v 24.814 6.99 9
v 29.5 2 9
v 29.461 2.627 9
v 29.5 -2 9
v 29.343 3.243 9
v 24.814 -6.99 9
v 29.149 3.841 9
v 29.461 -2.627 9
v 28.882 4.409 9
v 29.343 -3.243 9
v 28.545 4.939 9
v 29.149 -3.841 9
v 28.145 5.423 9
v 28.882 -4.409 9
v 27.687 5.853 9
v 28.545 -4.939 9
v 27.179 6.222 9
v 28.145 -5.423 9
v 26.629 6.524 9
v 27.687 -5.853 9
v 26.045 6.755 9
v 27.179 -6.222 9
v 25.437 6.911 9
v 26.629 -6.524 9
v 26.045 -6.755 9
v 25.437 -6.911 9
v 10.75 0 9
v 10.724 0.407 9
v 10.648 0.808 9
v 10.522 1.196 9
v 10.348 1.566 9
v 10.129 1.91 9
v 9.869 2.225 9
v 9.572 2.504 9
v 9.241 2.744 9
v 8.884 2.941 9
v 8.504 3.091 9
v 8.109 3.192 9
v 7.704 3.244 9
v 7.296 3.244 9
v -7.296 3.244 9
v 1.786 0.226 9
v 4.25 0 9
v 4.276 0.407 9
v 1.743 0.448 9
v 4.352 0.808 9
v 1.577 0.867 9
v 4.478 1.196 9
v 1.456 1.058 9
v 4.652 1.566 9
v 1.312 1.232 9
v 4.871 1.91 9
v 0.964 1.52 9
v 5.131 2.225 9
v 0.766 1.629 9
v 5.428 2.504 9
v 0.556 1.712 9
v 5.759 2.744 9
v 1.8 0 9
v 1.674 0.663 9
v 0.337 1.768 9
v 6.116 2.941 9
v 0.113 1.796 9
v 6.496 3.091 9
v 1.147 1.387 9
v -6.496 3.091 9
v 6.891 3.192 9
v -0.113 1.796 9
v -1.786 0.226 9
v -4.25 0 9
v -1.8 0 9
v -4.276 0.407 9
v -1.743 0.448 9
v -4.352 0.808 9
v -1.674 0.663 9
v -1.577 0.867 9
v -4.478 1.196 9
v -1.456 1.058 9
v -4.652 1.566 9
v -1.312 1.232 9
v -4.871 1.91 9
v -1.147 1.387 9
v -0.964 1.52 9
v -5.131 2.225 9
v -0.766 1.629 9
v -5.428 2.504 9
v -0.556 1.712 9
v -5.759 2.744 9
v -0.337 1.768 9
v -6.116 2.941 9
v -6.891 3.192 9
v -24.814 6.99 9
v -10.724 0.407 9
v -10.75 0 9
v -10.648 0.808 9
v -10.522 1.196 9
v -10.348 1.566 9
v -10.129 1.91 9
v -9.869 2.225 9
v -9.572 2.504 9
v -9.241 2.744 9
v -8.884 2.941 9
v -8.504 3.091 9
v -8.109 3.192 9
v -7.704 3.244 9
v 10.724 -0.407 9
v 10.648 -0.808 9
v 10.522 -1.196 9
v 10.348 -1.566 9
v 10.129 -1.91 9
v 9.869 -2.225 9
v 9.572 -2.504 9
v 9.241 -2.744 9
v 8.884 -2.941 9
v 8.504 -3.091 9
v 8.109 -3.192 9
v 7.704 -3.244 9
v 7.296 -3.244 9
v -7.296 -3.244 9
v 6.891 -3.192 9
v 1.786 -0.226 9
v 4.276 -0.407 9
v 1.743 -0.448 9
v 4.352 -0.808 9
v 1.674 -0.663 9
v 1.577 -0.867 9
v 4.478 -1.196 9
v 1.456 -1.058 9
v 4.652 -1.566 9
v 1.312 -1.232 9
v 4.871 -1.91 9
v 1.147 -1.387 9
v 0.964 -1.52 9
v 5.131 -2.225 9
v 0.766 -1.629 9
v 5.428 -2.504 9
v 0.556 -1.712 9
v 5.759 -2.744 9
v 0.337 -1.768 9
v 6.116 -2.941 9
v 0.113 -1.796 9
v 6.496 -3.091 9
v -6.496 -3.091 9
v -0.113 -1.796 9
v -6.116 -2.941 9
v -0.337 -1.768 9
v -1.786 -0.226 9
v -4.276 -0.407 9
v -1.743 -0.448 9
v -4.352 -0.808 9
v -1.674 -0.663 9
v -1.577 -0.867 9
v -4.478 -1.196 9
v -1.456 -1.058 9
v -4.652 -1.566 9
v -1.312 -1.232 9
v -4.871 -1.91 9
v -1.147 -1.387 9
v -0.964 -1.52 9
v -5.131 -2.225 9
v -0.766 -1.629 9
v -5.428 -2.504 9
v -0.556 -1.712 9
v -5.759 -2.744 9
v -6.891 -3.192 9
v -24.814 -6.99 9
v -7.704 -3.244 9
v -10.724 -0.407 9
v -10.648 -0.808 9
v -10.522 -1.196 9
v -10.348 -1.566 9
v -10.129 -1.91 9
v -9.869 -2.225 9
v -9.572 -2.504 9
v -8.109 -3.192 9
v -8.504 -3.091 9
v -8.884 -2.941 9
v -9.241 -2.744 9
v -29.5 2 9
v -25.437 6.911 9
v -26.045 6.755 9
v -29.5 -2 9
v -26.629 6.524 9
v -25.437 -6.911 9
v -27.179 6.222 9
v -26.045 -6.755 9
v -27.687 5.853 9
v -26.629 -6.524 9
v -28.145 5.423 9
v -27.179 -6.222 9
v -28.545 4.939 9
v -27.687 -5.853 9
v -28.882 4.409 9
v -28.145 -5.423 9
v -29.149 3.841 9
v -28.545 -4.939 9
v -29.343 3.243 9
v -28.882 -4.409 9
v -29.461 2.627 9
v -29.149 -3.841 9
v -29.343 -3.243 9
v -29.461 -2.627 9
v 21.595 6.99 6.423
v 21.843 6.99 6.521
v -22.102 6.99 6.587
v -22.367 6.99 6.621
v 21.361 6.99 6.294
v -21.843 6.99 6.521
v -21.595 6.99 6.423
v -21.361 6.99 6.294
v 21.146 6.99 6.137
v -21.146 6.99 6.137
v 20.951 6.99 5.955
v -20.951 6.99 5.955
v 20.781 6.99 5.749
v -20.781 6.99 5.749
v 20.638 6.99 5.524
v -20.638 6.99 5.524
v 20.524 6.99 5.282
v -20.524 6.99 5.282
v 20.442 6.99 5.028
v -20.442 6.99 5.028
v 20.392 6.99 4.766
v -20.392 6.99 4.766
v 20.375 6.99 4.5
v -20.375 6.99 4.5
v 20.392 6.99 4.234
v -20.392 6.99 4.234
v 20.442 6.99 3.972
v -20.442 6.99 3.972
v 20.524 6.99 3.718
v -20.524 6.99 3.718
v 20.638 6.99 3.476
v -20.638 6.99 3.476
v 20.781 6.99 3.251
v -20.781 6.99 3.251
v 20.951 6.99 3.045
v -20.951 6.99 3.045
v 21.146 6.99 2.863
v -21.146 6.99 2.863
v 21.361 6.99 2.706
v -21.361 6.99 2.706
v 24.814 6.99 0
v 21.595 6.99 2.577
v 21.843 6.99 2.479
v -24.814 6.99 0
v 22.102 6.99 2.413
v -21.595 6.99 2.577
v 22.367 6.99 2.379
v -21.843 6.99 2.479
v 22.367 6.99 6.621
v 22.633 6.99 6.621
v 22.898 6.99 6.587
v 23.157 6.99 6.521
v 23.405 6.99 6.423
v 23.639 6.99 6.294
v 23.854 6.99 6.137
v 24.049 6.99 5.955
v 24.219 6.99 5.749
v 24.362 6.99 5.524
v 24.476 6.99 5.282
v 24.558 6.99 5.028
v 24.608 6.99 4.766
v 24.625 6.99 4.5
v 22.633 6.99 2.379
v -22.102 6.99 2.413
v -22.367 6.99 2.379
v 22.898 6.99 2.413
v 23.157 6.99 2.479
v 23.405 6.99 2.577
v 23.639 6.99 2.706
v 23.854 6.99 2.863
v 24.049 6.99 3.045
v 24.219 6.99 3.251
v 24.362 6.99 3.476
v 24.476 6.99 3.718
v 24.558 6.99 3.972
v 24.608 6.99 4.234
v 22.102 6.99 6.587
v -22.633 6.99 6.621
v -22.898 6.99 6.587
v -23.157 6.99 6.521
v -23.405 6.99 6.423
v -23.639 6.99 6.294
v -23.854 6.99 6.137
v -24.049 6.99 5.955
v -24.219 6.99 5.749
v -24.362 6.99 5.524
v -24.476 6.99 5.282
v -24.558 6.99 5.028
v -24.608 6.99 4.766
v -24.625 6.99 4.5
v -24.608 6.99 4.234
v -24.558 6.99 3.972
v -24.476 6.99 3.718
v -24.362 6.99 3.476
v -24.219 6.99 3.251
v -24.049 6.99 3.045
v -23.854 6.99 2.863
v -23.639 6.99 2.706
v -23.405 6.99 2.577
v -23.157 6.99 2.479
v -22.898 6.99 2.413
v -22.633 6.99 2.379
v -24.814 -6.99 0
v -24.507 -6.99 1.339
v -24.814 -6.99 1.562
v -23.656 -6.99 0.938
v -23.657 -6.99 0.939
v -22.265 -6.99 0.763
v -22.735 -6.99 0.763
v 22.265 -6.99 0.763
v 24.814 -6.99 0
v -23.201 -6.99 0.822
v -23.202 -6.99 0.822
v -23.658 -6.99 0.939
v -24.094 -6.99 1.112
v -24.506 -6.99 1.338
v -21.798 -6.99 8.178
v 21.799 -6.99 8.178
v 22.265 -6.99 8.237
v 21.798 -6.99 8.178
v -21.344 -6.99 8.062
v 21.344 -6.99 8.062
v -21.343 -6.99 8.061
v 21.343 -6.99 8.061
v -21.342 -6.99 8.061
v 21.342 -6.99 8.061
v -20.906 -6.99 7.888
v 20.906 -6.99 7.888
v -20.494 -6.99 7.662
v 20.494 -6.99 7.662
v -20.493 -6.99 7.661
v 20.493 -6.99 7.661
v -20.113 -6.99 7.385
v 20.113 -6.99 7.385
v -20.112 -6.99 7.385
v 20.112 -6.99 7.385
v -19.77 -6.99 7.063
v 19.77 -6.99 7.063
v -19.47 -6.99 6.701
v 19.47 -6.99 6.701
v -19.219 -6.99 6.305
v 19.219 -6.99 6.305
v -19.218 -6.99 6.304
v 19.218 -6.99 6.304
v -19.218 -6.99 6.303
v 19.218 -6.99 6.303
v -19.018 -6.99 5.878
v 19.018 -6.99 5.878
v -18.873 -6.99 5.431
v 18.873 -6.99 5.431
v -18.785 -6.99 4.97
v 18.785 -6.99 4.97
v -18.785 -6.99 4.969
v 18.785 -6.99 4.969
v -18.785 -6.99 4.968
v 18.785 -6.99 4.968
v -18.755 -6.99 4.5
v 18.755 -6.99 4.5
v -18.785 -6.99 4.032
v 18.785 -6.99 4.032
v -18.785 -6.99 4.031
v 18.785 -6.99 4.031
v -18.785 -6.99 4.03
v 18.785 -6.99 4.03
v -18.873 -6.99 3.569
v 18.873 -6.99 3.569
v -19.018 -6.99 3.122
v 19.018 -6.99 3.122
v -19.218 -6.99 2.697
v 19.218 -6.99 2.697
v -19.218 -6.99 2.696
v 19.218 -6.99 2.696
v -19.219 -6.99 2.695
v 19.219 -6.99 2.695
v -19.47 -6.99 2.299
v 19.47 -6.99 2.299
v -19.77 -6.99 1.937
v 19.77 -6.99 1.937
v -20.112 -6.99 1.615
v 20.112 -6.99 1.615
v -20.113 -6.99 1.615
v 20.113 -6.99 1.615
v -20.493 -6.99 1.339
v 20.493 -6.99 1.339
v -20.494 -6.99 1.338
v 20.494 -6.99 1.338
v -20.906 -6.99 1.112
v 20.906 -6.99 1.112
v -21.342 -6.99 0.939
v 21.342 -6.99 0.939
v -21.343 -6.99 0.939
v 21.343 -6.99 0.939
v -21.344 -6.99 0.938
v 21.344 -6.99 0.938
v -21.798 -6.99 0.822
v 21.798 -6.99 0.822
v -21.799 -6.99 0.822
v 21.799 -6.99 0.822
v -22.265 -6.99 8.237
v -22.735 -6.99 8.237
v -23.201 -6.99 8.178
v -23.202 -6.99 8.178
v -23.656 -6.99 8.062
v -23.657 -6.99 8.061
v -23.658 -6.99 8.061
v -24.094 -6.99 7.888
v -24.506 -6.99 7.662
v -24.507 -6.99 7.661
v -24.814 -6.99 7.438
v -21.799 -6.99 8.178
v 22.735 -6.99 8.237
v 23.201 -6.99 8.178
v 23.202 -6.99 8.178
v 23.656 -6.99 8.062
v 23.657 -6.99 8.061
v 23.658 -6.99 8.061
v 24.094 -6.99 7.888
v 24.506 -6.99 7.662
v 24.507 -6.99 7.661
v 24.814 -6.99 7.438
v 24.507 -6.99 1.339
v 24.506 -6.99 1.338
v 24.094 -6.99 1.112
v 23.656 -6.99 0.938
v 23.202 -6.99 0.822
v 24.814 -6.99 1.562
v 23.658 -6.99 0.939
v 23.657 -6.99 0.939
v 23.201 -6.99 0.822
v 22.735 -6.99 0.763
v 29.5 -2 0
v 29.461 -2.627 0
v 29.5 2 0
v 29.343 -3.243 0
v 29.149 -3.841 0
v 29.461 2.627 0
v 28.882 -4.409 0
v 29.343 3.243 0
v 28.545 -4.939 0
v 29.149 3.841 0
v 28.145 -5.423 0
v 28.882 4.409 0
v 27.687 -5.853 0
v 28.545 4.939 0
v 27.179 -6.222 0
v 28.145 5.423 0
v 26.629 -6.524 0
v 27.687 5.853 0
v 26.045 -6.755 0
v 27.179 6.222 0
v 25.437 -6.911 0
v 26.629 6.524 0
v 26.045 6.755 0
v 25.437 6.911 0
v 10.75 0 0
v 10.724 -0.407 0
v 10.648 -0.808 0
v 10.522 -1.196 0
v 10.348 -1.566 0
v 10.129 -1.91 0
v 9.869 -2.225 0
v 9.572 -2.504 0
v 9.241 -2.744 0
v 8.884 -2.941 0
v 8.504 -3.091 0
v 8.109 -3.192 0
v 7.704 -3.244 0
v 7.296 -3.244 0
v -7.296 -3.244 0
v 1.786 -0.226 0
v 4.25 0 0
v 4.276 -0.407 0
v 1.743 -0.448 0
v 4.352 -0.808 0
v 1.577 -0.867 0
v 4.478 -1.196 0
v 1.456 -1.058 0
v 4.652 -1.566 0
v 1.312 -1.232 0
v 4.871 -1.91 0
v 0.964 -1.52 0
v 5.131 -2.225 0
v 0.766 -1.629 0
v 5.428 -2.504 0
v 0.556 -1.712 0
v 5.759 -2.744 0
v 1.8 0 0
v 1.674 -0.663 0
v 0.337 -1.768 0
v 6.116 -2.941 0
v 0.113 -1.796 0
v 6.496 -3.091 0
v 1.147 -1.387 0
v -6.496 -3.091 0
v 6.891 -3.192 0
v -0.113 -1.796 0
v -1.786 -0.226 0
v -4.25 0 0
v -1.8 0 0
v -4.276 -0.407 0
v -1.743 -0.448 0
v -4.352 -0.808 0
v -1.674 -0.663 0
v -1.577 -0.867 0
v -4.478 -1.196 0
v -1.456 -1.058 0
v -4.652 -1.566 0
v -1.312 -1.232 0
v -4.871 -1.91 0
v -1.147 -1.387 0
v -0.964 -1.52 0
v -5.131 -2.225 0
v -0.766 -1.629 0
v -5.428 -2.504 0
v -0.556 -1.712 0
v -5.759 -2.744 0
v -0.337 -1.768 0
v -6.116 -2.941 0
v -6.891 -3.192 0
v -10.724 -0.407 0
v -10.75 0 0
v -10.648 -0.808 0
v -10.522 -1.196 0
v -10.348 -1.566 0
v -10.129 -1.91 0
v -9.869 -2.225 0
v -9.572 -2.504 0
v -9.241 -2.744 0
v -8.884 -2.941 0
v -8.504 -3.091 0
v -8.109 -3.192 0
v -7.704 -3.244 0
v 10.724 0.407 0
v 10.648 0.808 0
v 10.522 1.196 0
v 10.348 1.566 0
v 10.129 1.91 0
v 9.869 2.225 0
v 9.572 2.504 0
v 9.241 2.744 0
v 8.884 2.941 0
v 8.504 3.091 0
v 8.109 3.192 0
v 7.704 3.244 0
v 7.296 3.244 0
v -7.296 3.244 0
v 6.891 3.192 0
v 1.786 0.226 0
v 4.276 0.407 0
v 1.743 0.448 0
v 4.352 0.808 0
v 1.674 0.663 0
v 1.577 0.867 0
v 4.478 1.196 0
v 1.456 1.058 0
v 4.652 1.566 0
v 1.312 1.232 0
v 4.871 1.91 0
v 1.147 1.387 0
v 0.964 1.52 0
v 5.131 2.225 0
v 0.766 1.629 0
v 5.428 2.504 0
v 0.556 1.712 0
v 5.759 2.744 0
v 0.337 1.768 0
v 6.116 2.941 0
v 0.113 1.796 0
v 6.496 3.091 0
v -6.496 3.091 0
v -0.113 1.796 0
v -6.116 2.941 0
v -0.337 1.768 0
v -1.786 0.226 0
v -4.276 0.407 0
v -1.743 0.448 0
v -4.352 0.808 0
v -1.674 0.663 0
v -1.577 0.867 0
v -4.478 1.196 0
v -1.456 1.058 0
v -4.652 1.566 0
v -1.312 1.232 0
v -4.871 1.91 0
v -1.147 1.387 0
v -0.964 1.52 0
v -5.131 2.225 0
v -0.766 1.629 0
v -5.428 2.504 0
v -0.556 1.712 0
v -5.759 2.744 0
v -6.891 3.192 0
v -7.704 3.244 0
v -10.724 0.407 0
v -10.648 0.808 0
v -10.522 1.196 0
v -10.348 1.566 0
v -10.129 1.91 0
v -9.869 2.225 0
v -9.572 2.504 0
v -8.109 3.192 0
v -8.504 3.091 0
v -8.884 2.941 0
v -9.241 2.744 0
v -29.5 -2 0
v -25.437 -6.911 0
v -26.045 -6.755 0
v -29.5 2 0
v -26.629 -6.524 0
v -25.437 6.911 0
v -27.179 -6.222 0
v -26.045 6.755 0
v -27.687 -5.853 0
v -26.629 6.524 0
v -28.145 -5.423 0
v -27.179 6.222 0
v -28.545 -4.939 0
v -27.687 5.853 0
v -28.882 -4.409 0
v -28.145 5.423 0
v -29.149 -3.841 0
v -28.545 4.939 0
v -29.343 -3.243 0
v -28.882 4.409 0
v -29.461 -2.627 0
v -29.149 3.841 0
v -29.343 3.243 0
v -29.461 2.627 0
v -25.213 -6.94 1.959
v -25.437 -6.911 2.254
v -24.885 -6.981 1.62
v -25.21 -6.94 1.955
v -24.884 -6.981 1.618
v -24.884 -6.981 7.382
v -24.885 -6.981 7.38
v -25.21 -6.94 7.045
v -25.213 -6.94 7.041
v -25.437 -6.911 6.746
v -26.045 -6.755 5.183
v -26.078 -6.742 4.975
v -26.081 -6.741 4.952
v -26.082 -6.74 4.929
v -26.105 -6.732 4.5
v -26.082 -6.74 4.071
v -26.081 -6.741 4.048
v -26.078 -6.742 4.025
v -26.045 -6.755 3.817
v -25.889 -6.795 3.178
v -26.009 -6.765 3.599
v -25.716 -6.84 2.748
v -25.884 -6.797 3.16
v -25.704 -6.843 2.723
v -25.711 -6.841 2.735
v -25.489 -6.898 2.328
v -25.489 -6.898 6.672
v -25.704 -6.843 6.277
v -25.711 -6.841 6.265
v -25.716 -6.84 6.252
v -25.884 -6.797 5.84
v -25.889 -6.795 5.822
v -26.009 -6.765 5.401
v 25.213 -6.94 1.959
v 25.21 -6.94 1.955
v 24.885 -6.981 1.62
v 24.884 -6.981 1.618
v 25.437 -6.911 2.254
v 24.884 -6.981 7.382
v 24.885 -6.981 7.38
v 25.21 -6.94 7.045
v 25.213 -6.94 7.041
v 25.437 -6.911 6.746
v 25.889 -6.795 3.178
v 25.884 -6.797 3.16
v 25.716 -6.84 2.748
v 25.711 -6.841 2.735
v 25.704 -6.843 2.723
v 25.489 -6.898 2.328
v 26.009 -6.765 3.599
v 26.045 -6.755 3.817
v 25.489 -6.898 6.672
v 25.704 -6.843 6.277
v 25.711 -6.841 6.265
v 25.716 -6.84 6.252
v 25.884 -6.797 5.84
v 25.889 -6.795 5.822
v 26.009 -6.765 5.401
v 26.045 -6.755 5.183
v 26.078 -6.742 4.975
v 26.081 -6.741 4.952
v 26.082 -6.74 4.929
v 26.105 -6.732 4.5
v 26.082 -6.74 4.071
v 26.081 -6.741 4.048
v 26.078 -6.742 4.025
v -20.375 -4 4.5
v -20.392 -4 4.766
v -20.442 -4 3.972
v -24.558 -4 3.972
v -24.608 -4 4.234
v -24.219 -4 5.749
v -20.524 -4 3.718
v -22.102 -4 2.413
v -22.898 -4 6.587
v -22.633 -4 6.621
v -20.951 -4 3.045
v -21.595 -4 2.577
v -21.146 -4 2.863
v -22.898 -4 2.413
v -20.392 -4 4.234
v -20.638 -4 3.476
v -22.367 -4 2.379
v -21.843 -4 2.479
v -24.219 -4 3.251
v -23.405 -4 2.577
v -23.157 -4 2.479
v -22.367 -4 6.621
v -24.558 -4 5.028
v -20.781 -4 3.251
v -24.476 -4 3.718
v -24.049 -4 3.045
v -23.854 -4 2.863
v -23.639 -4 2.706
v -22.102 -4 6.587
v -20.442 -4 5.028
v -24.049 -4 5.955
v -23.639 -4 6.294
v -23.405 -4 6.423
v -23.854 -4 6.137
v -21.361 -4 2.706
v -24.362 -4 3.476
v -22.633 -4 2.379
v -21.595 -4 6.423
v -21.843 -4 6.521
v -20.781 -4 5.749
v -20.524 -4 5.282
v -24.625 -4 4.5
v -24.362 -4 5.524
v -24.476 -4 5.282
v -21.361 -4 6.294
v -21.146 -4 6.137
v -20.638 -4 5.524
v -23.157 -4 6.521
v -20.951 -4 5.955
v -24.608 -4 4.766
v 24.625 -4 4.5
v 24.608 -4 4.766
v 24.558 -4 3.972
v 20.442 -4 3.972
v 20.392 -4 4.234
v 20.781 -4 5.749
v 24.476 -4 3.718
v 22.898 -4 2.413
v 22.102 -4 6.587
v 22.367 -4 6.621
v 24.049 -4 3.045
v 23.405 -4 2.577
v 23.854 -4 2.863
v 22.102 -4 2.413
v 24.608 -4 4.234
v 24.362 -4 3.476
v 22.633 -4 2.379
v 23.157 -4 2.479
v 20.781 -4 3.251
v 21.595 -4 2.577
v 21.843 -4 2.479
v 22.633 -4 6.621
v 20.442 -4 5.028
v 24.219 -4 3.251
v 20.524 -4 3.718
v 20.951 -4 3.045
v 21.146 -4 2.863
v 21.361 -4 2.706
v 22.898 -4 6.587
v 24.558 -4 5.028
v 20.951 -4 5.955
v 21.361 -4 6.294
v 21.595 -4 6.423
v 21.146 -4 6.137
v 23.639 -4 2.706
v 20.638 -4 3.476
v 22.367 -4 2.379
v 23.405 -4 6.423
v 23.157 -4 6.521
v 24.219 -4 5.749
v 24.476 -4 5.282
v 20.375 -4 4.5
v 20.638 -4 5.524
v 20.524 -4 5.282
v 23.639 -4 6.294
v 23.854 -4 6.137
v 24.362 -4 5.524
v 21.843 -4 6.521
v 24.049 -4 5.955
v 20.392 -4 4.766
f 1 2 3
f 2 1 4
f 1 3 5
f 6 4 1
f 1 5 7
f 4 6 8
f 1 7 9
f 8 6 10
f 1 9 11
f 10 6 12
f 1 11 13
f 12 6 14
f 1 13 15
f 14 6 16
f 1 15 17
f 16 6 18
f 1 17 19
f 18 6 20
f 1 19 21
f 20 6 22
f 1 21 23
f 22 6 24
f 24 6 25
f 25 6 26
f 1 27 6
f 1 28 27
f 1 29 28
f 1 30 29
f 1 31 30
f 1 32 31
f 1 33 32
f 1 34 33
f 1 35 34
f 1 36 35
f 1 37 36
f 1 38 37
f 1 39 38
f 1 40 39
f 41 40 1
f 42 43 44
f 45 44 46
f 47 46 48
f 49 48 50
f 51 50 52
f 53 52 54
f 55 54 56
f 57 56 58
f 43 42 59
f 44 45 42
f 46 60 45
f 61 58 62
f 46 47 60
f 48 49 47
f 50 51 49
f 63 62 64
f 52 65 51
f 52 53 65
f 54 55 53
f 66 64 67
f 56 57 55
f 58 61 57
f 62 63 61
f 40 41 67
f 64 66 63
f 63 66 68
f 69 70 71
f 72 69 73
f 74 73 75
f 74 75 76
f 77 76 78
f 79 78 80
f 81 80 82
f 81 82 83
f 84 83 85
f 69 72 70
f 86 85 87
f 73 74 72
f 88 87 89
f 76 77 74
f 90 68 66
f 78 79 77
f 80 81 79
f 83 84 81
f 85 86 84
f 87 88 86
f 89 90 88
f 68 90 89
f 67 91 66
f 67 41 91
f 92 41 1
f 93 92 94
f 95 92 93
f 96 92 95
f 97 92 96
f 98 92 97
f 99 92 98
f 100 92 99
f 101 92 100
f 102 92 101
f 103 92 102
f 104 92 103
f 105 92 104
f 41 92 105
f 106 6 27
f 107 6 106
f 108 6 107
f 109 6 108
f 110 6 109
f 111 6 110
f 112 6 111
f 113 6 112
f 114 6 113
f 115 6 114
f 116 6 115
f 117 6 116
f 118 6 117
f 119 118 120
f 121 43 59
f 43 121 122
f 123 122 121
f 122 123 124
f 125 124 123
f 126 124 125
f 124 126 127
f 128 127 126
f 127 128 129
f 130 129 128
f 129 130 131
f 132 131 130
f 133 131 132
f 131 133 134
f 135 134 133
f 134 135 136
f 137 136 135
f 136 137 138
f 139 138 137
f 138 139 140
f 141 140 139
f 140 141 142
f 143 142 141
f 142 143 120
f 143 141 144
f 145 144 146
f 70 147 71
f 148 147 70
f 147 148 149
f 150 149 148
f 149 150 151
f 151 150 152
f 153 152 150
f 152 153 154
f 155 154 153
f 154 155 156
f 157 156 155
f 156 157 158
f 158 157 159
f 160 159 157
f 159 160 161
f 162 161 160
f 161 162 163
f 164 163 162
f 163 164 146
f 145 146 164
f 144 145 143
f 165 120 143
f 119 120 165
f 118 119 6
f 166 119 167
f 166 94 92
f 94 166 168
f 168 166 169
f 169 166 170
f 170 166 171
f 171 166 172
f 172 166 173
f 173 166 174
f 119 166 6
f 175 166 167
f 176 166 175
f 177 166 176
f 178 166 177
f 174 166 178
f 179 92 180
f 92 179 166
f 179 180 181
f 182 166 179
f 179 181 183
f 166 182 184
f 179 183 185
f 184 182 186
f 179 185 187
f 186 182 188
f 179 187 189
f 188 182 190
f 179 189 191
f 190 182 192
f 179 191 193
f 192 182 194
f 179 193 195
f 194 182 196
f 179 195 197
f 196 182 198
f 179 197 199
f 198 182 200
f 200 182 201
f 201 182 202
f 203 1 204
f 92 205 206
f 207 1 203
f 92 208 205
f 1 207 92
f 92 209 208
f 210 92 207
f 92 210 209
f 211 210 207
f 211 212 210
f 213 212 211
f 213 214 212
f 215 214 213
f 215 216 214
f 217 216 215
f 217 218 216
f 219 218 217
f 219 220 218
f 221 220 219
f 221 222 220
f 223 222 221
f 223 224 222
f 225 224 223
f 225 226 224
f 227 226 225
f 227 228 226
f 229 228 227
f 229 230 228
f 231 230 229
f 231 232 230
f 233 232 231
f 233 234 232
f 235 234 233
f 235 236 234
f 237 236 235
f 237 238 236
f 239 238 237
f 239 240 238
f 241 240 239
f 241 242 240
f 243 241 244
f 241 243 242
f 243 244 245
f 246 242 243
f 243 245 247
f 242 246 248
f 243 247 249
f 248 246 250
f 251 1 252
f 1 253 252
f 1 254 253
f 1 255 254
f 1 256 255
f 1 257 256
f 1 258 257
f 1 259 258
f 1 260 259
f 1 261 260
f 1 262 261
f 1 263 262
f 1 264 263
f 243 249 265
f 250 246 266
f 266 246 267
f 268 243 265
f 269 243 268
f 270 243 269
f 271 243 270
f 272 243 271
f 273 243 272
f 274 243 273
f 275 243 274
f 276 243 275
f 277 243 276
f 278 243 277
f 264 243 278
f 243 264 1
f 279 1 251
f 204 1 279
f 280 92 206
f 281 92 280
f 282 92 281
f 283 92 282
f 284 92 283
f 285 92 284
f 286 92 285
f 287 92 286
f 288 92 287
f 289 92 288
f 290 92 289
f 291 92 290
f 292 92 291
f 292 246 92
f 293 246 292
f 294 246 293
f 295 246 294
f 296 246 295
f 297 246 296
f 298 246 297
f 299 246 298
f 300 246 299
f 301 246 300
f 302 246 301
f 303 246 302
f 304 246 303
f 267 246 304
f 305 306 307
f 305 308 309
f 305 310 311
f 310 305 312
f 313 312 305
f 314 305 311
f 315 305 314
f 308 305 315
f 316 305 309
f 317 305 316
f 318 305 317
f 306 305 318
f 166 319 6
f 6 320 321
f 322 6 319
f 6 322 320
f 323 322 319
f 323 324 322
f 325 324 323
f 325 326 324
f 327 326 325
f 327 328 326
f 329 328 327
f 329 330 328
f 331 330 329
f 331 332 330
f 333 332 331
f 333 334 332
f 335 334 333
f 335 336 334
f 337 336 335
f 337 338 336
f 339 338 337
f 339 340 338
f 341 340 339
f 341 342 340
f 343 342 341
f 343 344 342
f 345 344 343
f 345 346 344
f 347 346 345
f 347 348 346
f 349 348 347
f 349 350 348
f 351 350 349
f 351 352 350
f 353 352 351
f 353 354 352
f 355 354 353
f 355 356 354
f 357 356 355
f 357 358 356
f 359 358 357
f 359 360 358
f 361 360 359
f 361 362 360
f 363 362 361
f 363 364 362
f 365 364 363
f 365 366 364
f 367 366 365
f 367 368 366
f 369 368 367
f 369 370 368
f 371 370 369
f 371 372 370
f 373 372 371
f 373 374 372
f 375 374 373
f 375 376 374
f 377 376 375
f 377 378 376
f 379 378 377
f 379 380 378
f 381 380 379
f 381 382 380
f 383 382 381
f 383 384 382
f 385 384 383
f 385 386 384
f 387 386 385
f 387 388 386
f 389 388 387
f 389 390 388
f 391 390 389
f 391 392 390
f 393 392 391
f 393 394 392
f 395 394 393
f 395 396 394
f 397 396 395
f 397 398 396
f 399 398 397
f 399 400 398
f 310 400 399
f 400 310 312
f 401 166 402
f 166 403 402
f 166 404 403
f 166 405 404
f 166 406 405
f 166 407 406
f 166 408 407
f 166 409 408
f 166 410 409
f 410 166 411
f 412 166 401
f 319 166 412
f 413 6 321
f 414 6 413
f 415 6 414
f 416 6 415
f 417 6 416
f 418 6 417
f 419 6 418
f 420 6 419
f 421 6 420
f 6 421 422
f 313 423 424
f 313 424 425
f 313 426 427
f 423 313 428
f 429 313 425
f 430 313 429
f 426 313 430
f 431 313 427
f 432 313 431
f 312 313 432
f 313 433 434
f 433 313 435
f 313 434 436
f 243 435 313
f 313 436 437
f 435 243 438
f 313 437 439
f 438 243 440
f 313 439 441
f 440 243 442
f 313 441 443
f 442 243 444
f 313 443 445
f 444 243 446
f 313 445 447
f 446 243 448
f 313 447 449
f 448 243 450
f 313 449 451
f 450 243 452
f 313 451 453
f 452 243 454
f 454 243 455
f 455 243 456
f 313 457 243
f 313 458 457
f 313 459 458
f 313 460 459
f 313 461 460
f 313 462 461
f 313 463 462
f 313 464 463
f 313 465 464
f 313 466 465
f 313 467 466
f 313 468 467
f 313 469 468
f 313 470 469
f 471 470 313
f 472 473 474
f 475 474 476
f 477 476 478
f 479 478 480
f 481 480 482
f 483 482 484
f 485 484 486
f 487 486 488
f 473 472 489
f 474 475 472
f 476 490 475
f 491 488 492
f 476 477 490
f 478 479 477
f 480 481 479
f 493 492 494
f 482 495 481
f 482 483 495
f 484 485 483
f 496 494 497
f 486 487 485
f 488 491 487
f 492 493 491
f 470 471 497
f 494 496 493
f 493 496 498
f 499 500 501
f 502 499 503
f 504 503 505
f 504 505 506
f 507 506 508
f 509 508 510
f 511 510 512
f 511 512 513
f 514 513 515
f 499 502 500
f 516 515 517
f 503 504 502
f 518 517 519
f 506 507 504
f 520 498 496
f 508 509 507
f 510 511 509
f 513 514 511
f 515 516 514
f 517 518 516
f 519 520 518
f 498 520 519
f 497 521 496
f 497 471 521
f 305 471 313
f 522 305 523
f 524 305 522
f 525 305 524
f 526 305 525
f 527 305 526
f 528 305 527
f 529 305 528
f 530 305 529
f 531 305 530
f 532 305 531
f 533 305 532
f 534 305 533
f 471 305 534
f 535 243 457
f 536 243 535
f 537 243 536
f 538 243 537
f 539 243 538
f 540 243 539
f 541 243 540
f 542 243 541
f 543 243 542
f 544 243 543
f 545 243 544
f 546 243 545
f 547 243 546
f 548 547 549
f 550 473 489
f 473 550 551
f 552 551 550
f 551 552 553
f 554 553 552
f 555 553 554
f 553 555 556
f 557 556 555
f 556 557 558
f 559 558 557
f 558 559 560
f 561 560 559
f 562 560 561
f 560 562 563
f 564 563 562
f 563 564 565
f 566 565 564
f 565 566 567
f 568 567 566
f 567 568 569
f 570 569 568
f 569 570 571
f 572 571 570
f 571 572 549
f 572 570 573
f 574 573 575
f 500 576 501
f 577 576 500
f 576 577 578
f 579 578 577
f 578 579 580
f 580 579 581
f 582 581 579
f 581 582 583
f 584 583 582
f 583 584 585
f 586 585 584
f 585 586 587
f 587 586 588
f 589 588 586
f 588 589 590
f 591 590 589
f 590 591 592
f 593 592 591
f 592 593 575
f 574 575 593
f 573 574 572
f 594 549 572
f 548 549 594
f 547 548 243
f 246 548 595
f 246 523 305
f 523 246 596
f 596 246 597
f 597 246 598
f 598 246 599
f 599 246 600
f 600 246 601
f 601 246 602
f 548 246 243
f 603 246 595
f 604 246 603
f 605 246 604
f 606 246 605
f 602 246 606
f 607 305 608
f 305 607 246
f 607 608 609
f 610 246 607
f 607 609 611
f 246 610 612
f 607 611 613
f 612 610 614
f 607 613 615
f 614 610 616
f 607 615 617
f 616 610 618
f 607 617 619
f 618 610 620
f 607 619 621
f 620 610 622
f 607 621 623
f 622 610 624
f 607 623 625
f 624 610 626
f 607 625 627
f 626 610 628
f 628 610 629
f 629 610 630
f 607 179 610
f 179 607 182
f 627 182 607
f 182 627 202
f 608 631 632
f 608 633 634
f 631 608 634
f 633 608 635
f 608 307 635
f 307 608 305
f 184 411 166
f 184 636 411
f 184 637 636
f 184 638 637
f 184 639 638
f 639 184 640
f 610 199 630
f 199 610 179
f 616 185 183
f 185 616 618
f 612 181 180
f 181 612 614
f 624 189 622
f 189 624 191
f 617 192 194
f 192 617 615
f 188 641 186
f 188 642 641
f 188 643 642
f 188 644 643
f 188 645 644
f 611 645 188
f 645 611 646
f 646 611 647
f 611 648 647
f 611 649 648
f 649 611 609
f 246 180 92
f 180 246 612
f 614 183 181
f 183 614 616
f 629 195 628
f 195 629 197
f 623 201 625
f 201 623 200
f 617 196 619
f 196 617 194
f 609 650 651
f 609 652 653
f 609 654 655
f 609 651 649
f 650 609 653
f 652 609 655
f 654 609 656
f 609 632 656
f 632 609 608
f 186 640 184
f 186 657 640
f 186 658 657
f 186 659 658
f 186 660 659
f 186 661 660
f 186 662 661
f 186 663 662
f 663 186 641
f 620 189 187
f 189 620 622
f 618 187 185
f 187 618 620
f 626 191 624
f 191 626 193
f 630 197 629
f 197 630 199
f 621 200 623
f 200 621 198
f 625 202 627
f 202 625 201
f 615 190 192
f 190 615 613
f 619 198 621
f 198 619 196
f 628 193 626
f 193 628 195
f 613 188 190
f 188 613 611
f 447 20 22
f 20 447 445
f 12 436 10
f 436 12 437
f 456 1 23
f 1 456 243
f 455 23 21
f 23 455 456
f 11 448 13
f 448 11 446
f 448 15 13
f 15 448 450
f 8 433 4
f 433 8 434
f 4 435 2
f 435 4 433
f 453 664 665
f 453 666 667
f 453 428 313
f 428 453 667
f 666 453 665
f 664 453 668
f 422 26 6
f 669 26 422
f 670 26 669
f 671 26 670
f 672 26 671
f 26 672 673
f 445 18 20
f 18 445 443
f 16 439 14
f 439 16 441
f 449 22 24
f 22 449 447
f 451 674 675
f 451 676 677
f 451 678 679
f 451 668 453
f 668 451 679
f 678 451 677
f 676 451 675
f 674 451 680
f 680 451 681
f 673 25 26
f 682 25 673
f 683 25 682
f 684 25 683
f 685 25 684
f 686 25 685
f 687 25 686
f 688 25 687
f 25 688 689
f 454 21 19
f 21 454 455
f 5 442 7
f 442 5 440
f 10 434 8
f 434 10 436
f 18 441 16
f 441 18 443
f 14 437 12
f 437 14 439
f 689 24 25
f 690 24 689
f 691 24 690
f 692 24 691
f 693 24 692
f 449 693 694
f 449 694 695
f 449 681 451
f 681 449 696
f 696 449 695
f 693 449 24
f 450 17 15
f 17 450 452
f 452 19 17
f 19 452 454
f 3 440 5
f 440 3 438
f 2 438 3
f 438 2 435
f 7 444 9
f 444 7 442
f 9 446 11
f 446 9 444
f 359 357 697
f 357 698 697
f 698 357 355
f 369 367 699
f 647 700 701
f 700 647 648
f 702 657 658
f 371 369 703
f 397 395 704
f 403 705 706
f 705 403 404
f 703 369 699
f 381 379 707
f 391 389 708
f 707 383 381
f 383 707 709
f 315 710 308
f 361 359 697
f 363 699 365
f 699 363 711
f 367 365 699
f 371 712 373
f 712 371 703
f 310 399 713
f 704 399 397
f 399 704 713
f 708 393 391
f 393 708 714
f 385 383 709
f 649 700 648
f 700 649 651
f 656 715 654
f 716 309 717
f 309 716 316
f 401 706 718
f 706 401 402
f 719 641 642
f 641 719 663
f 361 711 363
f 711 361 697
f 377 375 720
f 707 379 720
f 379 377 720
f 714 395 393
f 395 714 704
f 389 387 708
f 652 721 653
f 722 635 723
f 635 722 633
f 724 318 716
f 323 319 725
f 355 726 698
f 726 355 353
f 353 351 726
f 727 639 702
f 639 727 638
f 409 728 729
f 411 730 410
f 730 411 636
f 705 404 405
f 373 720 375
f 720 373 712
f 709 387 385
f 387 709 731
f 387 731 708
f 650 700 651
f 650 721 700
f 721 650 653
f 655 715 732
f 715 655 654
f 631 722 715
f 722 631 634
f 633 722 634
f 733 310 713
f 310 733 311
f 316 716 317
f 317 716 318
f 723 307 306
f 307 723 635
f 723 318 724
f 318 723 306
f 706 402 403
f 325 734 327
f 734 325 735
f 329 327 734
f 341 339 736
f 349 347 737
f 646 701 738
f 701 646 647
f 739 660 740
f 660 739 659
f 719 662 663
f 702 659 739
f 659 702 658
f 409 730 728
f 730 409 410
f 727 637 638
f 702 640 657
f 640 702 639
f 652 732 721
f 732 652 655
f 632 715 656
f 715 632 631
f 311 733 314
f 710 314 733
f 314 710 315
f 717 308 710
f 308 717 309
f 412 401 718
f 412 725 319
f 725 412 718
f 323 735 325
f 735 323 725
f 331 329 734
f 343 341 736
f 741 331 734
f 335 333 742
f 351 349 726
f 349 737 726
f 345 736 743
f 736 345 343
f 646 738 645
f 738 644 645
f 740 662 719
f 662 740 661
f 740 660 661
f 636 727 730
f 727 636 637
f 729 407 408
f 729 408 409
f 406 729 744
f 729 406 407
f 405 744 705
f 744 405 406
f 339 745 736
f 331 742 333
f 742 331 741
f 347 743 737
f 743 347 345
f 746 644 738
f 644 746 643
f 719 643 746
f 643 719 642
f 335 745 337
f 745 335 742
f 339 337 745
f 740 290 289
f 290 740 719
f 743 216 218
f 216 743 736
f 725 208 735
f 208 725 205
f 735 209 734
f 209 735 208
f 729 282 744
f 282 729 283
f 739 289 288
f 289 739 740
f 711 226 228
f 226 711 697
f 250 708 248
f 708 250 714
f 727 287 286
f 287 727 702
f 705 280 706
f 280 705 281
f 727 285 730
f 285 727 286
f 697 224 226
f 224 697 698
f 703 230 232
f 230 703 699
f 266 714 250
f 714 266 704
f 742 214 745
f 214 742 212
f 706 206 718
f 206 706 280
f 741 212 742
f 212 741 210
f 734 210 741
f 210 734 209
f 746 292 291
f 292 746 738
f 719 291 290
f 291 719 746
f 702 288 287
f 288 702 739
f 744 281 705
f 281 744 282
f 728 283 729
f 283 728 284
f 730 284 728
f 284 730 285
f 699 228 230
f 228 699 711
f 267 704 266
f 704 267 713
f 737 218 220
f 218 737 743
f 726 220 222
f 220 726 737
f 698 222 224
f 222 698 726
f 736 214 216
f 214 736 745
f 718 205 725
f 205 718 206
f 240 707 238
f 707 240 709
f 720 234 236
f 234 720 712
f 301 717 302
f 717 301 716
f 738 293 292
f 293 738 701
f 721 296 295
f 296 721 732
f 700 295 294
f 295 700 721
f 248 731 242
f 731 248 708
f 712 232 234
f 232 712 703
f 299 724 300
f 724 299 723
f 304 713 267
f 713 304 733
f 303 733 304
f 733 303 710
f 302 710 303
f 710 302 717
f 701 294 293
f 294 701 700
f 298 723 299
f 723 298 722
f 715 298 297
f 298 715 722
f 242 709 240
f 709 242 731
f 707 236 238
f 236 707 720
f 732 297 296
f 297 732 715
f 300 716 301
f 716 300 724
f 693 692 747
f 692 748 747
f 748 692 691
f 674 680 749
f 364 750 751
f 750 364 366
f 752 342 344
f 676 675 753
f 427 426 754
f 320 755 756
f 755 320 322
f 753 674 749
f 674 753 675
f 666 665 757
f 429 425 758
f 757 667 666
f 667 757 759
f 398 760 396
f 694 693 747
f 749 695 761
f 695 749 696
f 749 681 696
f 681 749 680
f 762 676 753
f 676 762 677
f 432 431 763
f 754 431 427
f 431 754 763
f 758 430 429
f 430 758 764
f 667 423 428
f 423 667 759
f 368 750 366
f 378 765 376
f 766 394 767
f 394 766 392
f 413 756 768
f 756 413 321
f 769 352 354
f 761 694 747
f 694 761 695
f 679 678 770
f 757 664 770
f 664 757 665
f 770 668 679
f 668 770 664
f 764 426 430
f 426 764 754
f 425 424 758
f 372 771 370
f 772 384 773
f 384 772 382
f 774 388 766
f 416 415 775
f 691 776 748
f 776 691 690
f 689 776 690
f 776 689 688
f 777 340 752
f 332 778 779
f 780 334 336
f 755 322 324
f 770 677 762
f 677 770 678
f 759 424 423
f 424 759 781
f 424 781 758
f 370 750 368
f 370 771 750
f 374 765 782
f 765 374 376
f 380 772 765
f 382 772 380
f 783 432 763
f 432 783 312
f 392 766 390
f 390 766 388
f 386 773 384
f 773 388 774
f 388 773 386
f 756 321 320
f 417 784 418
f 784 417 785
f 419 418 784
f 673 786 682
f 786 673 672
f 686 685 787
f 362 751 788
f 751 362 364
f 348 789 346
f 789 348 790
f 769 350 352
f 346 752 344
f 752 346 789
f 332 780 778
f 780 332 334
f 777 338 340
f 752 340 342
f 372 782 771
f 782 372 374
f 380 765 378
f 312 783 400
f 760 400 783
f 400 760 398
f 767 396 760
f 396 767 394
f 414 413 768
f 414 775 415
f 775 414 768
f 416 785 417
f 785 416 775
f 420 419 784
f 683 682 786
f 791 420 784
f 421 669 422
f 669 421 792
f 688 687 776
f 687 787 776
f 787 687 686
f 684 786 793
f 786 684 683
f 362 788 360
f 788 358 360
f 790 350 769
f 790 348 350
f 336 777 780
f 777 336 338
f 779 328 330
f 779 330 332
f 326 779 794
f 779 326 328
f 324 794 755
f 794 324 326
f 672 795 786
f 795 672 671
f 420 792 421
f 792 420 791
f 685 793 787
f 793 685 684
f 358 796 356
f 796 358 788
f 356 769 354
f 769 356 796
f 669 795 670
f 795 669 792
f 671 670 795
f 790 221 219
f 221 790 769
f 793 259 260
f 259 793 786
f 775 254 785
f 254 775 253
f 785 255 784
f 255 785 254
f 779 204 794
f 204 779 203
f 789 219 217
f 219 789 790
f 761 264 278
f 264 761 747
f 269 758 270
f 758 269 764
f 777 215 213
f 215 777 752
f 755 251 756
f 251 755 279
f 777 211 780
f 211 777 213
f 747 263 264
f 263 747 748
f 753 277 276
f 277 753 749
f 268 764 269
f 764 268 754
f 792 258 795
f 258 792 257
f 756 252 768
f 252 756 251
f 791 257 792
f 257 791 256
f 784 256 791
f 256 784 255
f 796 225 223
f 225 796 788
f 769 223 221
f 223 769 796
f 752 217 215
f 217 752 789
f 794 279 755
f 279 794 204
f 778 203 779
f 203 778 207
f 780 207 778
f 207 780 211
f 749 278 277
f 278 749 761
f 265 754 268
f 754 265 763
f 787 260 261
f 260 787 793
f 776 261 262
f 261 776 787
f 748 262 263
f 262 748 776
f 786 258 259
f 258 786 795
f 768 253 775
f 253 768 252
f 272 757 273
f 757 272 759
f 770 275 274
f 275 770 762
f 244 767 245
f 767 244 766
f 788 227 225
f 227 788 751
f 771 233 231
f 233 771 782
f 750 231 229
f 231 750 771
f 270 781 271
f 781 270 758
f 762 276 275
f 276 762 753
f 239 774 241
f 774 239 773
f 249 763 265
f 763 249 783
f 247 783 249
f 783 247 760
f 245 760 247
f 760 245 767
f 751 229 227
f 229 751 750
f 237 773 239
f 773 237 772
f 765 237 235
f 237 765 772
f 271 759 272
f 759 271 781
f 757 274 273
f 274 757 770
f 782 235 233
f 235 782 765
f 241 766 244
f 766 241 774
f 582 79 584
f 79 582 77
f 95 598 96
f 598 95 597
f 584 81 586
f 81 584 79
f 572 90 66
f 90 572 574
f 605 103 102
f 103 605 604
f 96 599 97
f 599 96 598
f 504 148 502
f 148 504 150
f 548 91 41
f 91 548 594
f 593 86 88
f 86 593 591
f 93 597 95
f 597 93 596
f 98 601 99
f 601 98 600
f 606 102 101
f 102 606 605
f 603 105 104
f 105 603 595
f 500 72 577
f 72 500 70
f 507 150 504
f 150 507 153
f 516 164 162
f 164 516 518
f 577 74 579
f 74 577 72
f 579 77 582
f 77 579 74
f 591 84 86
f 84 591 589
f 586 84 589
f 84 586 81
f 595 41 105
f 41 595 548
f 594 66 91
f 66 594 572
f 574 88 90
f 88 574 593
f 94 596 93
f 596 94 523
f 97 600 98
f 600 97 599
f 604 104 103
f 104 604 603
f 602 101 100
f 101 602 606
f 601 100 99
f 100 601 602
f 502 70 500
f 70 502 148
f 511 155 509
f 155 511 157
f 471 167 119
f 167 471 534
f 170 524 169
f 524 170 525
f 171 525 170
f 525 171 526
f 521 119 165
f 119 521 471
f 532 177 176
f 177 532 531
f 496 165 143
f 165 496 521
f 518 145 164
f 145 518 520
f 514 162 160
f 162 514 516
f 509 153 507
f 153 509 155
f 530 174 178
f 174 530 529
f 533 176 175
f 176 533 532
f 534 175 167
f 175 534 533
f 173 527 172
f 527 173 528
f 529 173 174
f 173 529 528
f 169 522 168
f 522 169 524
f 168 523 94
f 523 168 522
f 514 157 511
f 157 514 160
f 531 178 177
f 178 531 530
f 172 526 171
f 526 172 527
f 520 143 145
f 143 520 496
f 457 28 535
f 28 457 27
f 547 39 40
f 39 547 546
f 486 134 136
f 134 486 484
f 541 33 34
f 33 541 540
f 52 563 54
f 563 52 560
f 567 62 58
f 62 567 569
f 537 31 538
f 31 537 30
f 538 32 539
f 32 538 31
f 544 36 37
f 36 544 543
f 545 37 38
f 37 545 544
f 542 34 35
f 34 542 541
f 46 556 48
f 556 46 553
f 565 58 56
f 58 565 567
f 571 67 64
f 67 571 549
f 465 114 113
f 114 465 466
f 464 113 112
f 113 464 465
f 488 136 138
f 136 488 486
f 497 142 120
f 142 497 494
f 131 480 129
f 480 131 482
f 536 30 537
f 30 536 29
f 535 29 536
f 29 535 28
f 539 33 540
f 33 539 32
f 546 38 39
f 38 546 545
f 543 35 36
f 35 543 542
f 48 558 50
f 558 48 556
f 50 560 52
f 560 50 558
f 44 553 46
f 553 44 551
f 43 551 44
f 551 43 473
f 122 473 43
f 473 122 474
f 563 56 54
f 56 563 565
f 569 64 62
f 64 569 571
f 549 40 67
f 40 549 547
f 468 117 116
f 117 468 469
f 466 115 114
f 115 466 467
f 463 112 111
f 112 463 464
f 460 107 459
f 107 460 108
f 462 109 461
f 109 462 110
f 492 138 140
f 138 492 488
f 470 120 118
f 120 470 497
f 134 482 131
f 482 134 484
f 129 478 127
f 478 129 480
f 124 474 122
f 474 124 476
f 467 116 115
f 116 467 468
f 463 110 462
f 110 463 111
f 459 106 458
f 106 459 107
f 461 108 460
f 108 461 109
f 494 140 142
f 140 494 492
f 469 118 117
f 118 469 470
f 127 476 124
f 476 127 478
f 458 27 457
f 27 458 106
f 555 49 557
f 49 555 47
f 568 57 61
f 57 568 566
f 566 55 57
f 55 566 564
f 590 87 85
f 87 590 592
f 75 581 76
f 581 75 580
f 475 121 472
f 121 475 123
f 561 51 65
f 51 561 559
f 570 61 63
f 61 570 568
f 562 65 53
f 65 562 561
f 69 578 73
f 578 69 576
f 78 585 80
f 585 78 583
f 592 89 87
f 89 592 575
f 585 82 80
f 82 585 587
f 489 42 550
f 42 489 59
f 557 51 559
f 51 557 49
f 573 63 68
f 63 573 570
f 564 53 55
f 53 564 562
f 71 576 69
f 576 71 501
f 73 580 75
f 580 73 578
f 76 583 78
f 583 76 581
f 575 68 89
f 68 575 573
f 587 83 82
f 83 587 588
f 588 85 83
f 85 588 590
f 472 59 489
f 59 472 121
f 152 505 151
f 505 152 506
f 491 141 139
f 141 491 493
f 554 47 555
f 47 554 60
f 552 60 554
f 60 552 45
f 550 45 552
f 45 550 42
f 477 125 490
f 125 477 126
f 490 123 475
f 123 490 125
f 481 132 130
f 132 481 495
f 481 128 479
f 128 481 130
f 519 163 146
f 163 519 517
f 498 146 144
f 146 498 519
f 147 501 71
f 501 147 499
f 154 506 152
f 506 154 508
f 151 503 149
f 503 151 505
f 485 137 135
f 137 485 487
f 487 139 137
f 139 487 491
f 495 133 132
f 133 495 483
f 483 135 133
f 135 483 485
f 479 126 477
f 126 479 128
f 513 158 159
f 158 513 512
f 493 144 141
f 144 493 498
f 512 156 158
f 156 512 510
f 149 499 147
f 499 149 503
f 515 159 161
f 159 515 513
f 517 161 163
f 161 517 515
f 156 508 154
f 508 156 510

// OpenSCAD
$fn = 50;


difference() {
	union() {
		hull() {
			translate(v = [-9.5000000000, 2.0000000000, 0]) {
				cylinder(h = 9, r = 5);
			}
			translate(v = [9.5000000000, 2.0000000000, 0]) {
				cylinder(h = 9, r = 5);
			}
			translate(v = [-9.5000000000, -2.0000000000, 0]) {
				cylinder(h = 9, r = 5);
			}
			translate(v = [9.5000000000, -2.0000000000, 0]) {
				cylinder(h = 9, r = 5);
			}
		}
		translate(v = [-15.0000000000, 0.0000000000, 0]) {
			hull() {
				translate(v = [-9.5000000000, 2.0000000000, 0]) {
					cylinder(h = 9, r = 5);
				}
				translate(v = [9.5000000000, 2.0000000000, 0]) {
					cylinder(h = 9, r = 5);
				}
				translate(v = [-9.5000000000, -2.0000000000, 0]) {
					cylinder(h = 9, r = 5);
				}
				translate(v = [9.5000000000, -2.0000000000, 0]) {
					cylinder(h = 9, r = 5);
				}
			}
		}
		translate(v = [-15.0000000000, 0.0000000000, 0]) {
			hull() {
				translate(v = [-9.5000000000, 2.0000000000, 0]) {
					cylinder(h = 9, r = 5);
				}
				translate(v = [9.5000000000, 2.0000000000, 0]) {
					cylinder(h = 9, r = 5);
				}
				translate(v = [-9.5000000000, -2.0000000000, 0]) {
					cylinder(h = 9, r = 5);
				}
				translate(v = [9.5000000000, -2.0000000000, 0]) {
					cylinder(h = 9, r = 5);
				}
			}
		}
		translate(v = [15.0000000000, 0.0000000000, 0]) {
			hull() {
				translate(v = [-9.5000000000, 2.0000000000, 0]) {
					cylinder(h = 9, r = 5);
				}
				translate(v = [9.5000000000, 2.0000000000, 0]) {
					cylinder(h = 9, r = 5);
				}
				translate(v = [-9.5000000000, -2.0000000000, 0]) {
					cylinder(h = 9, r = 5);
				}
				translate(v = [9.5000000000, -2.0000000000, 0]) {
					cylinder(h = 9, r = 5);
				}
			}
		}
		translate(v = [15.0000000000, 0.0000000000, 0]) {
			hull() {
				translate(v = [-9.5000000000, 2.0000000000, 0]) {
					cylinder(h = 9, r = 5);
				}
				translate(v = [9.5000000000, 2.0000000000, 0]) {
					cylinder(h = 9, r = 5);
				}
				translate(v = [-9.5000000000, -2.0000000000, 0]) {
					cylinder(h = 9, r = 5);
				}
				translate(v = [9.5000000000, -2.0000000000, 0]) {
					cylinder(h = 9, r = 5);
				}
			}
		}
	}
	union() {
		translate(v = [-22.5000000000, -7.0000000000, 4.5000000000]) {
			rotate(a = [90, 0, 0]) {
				difference() {
					union() {
						#translate(v = [0, 0, -14.0000000000]) {
							cylinder(h = 14, r = 2.0000000000);
						}
						#translate(v = [0, 0, -3]) {
							cylinder(h = 3, r1 = 2.1250000000, r2 = 3.7500000000);
						}
						#translate(v = [0, 0, -14.0000000000]) {
							cylinder(h = 14, r = 2.1250000000);
						}
						#translate(v = [0, 0, -14.0000000000]) {
							cylinder(h = 14, r = 2.0000000000);
						}
					}
					union();
				}
			}
		}
		translate(v = [22.5000000000, -7.0000000000, 4.5000000000]) {
			rotate(a = [90, 0, 0]) {
				difference() {
					union() {
						#translate(v = [0, 0, -14.0000000000]) {
							cylinder(h = 14, r = 2.0000000000);
						}
						#translate(v = [0, 0, -3]) {
							cylinder(h = 3, r1 = 2.1250000000, r2 = 3.7500000000);
						}
						#translate(v = [0, 0, -14.0000000000]) {
							cylinder(h = 14, r = 2.1250000000);
						}
						#translate(v = [0, 0, -14.0000000000]) {
							cylinder(h = 14, r = 2.0000000000);
						}
					}
					union();
				}
			}
		}
		translate(v = [-7.5000000000, 0.0000000000, 0]) {
			translate(v = [0, 0, -100]) {
				cylinder(h = 200, r = 3.2500000000);
			}
		}
		translate(v = [7.5000000000, 0.0000000000, 0]) {
			translate(v = [0, 0, -100]) {
				cylinder(h = 200, r = 3.2500000000);
			}
		}
		translate(v = [-7.5000000000, 0.0000000000, 0]) {
			translate(v = [0, 0, -100]) {
				cylinder(h = 200, r = 1.8000000000);
			}
		}
		translate(v = [0, 0, -100]) {
			cylinder(h = 200, r = 1.8000000000);
		}
		translate(v = [7.5000000000, 0.0000000000, 0]) {
			translate(v = [0, 0, -100]) {
				cylinder(h = 200, r = 1.8000000000);
			}
		}
	}
}
